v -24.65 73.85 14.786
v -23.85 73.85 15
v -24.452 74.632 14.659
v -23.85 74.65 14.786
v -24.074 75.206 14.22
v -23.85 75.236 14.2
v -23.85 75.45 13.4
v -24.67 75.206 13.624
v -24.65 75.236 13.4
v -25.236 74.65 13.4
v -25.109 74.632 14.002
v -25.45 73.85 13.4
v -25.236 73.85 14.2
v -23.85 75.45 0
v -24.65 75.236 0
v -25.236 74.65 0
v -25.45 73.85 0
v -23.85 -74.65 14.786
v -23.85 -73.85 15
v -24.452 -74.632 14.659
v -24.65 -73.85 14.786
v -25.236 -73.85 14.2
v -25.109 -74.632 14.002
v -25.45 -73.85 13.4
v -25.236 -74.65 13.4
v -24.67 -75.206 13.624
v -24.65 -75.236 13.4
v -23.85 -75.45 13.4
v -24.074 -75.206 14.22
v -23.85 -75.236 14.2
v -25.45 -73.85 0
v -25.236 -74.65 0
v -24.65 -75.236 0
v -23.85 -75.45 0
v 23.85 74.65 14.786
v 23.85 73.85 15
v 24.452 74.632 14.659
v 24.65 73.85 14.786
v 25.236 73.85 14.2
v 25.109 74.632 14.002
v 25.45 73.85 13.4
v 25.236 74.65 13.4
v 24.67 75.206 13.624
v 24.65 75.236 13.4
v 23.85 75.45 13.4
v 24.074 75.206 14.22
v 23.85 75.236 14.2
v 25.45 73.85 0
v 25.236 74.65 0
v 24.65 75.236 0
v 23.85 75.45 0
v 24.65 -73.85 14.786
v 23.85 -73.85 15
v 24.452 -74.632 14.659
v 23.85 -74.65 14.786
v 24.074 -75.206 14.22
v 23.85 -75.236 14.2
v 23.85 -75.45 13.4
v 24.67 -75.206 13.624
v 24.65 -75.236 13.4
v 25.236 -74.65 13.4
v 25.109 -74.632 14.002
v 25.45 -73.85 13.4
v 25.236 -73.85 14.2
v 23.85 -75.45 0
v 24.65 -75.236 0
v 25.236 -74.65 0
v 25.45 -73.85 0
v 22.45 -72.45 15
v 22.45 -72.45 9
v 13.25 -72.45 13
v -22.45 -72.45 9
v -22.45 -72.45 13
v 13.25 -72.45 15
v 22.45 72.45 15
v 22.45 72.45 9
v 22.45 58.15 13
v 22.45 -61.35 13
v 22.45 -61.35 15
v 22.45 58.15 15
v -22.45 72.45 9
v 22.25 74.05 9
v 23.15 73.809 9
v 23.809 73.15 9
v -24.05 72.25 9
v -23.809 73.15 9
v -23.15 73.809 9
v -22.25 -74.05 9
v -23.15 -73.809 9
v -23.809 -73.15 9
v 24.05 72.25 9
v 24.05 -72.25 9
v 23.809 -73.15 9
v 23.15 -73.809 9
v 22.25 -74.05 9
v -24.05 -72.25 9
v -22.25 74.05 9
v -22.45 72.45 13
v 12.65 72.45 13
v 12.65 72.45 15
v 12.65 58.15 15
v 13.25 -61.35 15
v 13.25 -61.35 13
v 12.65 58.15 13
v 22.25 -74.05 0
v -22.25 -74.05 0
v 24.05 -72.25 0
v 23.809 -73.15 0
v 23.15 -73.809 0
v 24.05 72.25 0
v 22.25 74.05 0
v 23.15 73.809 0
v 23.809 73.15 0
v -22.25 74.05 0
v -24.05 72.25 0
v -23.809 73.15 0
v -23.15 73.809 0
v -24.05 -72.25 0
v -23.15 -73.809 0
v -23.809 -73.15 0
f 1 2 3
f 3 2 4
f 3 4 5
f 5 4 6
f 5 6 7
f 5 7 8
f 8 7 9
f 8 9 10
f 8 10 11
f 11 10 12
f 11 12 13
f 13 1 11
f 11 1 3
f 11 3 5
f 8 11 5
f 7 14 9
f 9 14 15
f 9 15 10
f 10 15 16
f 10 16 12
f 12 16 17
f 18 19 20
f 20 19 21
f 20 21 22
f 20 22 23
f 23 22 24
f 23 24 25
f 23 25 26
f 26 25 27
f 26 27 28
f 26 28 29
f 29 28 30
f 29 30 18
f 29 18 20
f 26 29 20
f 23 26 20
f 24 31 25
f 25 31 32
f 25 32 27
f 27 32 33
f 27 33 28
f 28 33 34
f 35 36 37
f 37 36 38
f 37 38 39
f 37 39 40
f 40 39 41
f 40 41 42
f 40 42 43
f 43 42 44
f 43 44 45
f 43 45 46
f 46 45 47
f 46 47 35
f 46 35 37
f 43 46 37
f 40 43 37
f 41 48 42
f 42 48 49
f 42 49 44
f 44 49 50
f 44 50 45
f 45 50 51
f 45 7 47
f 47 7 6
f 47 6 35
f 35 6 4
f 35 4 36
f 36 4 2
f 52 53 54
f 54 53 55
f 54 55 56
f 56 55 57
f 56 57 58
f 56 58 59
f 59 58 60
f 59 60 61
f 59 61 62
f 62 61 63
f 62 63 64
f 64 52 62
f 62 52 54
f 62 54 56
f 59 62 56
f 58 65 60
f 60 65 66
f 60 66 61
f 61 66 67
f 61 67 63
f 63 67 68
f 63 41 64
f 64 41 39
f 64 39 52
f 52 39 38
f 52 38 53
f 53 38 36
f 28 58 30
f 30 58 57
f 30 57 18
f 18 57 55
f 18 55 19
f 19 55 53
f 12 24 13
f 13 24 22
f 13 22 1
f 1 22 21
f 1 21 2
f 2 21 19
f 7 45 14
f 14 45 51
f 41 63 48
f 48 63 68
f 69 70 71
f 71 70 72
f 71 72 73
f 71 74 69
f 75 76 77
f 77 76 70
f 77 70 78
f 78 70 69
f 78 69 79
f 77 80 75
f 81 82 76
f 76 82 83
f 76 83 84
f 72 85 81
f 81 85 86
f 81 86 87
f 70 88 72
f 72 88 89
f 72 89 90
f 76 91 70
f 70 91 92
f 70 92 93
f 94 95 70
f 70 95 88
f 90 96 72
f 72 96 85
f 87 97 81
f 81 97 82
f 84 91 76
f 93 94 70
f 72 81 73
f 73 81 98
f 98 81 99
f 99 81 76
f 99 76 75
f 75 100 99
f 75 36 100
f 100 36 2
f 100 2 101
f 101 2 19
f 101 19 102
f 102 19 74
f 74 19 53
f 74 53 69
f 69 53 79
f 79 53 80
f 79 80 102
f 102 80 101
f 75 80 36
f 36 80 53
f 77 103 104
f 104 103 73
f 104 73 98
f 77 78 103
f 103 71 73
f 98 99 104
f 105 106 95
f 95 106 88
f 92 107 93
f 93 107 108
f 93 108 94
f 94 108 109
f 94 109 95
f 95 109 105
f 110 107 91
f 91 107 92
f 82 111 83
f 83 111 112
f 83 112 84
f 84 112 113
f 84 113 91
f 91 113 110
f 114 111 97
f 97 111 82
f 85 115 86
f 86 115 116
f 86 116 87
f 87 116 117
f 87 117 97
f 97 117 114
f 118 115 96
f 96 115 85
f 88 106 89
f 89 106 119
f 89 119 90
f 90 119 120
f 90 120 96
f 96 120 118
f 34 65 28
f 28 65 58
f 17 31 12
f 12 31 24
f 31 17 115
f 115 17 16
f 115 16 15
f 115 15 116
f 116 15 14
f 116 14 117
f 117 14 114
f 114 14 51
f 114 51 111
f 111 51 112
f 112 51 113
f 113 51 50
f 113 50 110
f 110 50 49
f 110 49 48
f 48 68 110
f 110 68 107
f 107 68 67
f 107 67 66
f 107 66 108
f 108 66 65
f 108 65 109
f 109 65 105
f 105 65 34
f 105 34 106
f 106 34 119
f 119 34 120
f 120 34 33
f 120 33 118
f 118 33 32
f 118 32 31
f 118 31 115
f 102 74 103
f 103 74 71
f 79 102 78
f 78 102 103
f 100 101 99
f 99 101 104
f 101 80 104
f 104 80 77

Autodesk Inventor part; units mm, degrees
ref_plane "YZ Plane" through (0, 0, 0) normal (1, 0, 0) x (0, 1, 0)
ref_plane "XZ Plane" through (0, 0, 0) normal (0, 1, 0) x (-1, 0, 0)
ref_plane "XY Plane" through (0, 0, 0) normal (0, 0, 1) x (1, 0, 0)
sketch "Boceto1" plane through (0, 0, 0) normal (0, 0, 1) x (1, 0, 0)
  line L0 (-22.25, 73.85) -> (22.25, 73.85) projected
  line L1 (23.85, 72.25) -> (23.85, -72.25) projected
  line L2 (22.25, -73.85) -> (-22.25, -73.85) projected
  line L3 (-23.85, -72.25) -> (-23.85, 72.25) projected
  line L4 (23.65, -75.25) -> (-23.65, -75.25) projected
  line L5 (25.25, 73.65) -> (25.25, -73.65) projected
  line L6 (-23.65, 75.25) -> (23.65, 75.25) projected
  line L7 (-25.25, -73.65) -> (-25.25, 73.65) projected
  line L8 (-22.25, 72.25) -> (22.25, 72.25) projected
  line L9 (-22.25, -72.25) -> (-22.25, 72.25) projected
  line L10 (22.25, 72.25) -> (22.25, -72.25) projected
  line L11 (22.25, -72.25) -> (-22.25, -72.25) projected
  line L12 (25.45, 75.45) -> (-25.45, 75.45)
  line L13 (-25.45, 75.45) -> (-25.45, -75.45)
  line L14 (-25.45, -75.45) -> (25.45, -75.45)
  line L15 (25.45, -75.45) -> (25.45, 75.45)
  arc A0 (23.85, 72.25) -> (22.25, 73.85) centre (22.25, 72.25) ccw projected
  arc A1 (22.25, -73.85) -> (23.85, -72.25) centre (22.25, -72.25) ccw projected
  arc A2 (-23.85, -72.25) -> (-22.25, -73.85) centre (-22.25, -72.25) ccw projected
  arc A3 (-22.25, 73.85) -> (-23.85, 72.25) centre (-22.25, 72.25) ccw projected
  arc A4 (23.65, -75.25) -> (25.25, -73.65) centre (23.65, -73.65) ccw projected
  arc A5 (25.25, 73.65) -> (23.65, 75.25) centre (23.65, 73.65) ccw projected
  arc A6 (-23.65, 75.25) -> (-25.25, 73.65) centre (-23.65, 73.65) ccw projected
  arc A7 (-25.25, -73.65) -> (-23.65, -75.25) centre (-23.65, -73.65) ccw projected
  line L16 (-22.25, -74.05) -> (22.25, -74.05)
  arc A8 (22.25, -74.05) -> (24.05, -72.25) centre (22.25, -72.25) ccw
  line L17 (24.05, -72.25) -> (24.05, 72.25)
  arc A9 (24.05, 72.25) -> (22.25, 74.05) centre (22.25, 72.25) ccw
  line L18 (22.25, 74.05) -> (-22.25, 74.05)
  arc A10 (-22.25, 74.05) -> (-24.05, 72.25) centre (-22.25, 72.25) ccw
  line L19 (-24.05, 72.25) -> (-24.05, -72.25)
  arc A11 (-24.05, -72.25) -> (-22.25, -74.05) centre (-22.25, -72.25) ccw
  point P0 (0, 0)
  dimension "d0" = 1.6
  dimension "d10" = 0.2
extrude "Extrusión1" add sketch "Boceto1" along normal blind 9 contours L4 A7 L7 A6 L6 A5 L5 A4 | L15 L14 L13 L12
sketch "Boceto2" plane through (0, 0, 9) normal (0, 0, 1) x (1, 0, 0)
  line L0 (-25.45, 75.45) -> (-25.45, -75.45) construction
  line L1 (-25.45, -75.45) -> (25.45, -75.45) construction
  line L2 (25.45, -75.45) -> (25.45, 75.45) construction
  line L3 (25.45, 75.45) -> (-25.45, 75.45) construction
  line L4 (-22.45, 72.45) -> (-22.45, -72.45)
  line L5 (-22.45, -72.45) -> (22.45, -72.45)
  line L6 (22.45, -72.45) -> (22.45, 72.45)
  line L7 (22.45, 72.45) -> (-22.45, 72.45)
  line L8 (-25.45, 75.45) -> (-25.45, -75.45)
  line L9 (-25.45, -75.45) -> (25.45, -75.45)
  line L10 (25.45, -75.45) -> (25.45, 75.45)
  line L11 (25.45, 75.45) -> (-25.45, 75.45)
  point P0 (0, 0)
  dimension "d3" = 3
  dimension "d4" = 3
extrude "Extrusión2" add sketch "Boceto2" along normal blind 4
sketch "Boceto3" plane through (0, 0, 13) normal (0, 0, 1) x (1, 0, 0)
  line L0 (-25.45, -75.45) -> (25.45, -75.45) projected
  line L1 (25.45, -75.45) -> (25.45, 75.45) projected
  line L2 (25.45, 75.45) -> (-25.45, 75.45) projected
  line L3 (-25.45, 75.45) -> (-25.45, -75.45) projected
  line L4 (-22.45, 72.45) -> (22.45, 72.45) projected
  line L5 (22.45, 72.45) -> (22.45, -72.45) projected
  line L6 (22.45, -72.45) -> (-22.45, -72.45) projected
  line L7 (-22.45, -72.45) -> (-22.45, 72.45) projected
  point P0 (0, 0)
extrude "Extrusión3" add sketch "Boceto3" along normal blind 2 contours L3 L2 L1 L0 | L4 L5 L6 L7
fillet "Empalme1" radius 1.6 11 edges at (25.45, -75.45, 12) (25.45, -75.45, 4.5) (-25.45, -75.45, 12) (-25.45, -75.45, 4.5) (-25.45, 75.45, 7.5) (25.45, 75.45, 12) (25.45, 75.45, 4.5) (25.45, 0, 15) (0, 75.45, 15) (-25.45, 0, 15) (0, -75.45, 15)
sketch "Boceto4" plane through (0, 0, 13) normal (0, 0, -1) x (-1, 0, 0)
  line L0 (22.45, -72.45) -> (22.45, 72.45) projected
  line L1 (22.45, 72.45) -> (-22.45, 72.45) projected
  line L2 (-22.45, 72.45) -> (-22.45, -72.45) projected
  line L3 (-22.45, -72.45) -> (22.45, -72.45) projected
  line L4 (-22.45, -72.45) -> (22.45, -72.45) projected
  line L5 (-22.45, -72.45) -> (-13.25, -72.45)
  line L6 (-13.25, -72.45) -> (-13.25, -61.35)
  line L7 (-13.25, -61.35) -> (-22.45, -61.35)
  line L8 (-22.45, -61.35) -> (-22.45, -72.45)
  point P0 (0, 0)
  dimension "d11" = 9.2
  dimension "d12" = 11.1
extrude "Extrusión4" cut sketch "Boceto4" against normal blind 9 contours L3 L2 L7 L6
sketch "Boceto5" plane through (0, 0, 13) normal (0, 0, -1) x (-1, 0, 0)
  line L0 (-22.45, -61.35) -> (-13.25, -61.35) projected
  line L1 (-13.25, -61.35) -> (-13.25, -72.45) projected
  line L2 (-13.25, -72.45) -> (22.45, -72.45) projected
  line L3 (22.45, -72.45) -> (22.45, 72.45) projected
  line L4 (22.45, 72.45) -> (-22.45, 72.45) projected
  line L5 (-22.45, 72.45) -> (-22.45, -61.35) projected
  line L6 (-22.45, 72.45) -> (-12.65, 72.45)
  line L7 (-12.65, 72.45) -> (-12.65, 58.15)
  line L8 (-12.65, 58.15) -> (-22.45, 58.15)
  line L9 (-22.45, 58.15) -> (-22.45, 72.45)
  point P0 (0, 0)
  dimension "d15" = 9.8
  dimension "d16" = 14.3
extrude "Extrusión5" cut sketch "Boceto5" against normal blind 9 contours L5 L4 L7 L8
properties part number "Tapa bateria"
